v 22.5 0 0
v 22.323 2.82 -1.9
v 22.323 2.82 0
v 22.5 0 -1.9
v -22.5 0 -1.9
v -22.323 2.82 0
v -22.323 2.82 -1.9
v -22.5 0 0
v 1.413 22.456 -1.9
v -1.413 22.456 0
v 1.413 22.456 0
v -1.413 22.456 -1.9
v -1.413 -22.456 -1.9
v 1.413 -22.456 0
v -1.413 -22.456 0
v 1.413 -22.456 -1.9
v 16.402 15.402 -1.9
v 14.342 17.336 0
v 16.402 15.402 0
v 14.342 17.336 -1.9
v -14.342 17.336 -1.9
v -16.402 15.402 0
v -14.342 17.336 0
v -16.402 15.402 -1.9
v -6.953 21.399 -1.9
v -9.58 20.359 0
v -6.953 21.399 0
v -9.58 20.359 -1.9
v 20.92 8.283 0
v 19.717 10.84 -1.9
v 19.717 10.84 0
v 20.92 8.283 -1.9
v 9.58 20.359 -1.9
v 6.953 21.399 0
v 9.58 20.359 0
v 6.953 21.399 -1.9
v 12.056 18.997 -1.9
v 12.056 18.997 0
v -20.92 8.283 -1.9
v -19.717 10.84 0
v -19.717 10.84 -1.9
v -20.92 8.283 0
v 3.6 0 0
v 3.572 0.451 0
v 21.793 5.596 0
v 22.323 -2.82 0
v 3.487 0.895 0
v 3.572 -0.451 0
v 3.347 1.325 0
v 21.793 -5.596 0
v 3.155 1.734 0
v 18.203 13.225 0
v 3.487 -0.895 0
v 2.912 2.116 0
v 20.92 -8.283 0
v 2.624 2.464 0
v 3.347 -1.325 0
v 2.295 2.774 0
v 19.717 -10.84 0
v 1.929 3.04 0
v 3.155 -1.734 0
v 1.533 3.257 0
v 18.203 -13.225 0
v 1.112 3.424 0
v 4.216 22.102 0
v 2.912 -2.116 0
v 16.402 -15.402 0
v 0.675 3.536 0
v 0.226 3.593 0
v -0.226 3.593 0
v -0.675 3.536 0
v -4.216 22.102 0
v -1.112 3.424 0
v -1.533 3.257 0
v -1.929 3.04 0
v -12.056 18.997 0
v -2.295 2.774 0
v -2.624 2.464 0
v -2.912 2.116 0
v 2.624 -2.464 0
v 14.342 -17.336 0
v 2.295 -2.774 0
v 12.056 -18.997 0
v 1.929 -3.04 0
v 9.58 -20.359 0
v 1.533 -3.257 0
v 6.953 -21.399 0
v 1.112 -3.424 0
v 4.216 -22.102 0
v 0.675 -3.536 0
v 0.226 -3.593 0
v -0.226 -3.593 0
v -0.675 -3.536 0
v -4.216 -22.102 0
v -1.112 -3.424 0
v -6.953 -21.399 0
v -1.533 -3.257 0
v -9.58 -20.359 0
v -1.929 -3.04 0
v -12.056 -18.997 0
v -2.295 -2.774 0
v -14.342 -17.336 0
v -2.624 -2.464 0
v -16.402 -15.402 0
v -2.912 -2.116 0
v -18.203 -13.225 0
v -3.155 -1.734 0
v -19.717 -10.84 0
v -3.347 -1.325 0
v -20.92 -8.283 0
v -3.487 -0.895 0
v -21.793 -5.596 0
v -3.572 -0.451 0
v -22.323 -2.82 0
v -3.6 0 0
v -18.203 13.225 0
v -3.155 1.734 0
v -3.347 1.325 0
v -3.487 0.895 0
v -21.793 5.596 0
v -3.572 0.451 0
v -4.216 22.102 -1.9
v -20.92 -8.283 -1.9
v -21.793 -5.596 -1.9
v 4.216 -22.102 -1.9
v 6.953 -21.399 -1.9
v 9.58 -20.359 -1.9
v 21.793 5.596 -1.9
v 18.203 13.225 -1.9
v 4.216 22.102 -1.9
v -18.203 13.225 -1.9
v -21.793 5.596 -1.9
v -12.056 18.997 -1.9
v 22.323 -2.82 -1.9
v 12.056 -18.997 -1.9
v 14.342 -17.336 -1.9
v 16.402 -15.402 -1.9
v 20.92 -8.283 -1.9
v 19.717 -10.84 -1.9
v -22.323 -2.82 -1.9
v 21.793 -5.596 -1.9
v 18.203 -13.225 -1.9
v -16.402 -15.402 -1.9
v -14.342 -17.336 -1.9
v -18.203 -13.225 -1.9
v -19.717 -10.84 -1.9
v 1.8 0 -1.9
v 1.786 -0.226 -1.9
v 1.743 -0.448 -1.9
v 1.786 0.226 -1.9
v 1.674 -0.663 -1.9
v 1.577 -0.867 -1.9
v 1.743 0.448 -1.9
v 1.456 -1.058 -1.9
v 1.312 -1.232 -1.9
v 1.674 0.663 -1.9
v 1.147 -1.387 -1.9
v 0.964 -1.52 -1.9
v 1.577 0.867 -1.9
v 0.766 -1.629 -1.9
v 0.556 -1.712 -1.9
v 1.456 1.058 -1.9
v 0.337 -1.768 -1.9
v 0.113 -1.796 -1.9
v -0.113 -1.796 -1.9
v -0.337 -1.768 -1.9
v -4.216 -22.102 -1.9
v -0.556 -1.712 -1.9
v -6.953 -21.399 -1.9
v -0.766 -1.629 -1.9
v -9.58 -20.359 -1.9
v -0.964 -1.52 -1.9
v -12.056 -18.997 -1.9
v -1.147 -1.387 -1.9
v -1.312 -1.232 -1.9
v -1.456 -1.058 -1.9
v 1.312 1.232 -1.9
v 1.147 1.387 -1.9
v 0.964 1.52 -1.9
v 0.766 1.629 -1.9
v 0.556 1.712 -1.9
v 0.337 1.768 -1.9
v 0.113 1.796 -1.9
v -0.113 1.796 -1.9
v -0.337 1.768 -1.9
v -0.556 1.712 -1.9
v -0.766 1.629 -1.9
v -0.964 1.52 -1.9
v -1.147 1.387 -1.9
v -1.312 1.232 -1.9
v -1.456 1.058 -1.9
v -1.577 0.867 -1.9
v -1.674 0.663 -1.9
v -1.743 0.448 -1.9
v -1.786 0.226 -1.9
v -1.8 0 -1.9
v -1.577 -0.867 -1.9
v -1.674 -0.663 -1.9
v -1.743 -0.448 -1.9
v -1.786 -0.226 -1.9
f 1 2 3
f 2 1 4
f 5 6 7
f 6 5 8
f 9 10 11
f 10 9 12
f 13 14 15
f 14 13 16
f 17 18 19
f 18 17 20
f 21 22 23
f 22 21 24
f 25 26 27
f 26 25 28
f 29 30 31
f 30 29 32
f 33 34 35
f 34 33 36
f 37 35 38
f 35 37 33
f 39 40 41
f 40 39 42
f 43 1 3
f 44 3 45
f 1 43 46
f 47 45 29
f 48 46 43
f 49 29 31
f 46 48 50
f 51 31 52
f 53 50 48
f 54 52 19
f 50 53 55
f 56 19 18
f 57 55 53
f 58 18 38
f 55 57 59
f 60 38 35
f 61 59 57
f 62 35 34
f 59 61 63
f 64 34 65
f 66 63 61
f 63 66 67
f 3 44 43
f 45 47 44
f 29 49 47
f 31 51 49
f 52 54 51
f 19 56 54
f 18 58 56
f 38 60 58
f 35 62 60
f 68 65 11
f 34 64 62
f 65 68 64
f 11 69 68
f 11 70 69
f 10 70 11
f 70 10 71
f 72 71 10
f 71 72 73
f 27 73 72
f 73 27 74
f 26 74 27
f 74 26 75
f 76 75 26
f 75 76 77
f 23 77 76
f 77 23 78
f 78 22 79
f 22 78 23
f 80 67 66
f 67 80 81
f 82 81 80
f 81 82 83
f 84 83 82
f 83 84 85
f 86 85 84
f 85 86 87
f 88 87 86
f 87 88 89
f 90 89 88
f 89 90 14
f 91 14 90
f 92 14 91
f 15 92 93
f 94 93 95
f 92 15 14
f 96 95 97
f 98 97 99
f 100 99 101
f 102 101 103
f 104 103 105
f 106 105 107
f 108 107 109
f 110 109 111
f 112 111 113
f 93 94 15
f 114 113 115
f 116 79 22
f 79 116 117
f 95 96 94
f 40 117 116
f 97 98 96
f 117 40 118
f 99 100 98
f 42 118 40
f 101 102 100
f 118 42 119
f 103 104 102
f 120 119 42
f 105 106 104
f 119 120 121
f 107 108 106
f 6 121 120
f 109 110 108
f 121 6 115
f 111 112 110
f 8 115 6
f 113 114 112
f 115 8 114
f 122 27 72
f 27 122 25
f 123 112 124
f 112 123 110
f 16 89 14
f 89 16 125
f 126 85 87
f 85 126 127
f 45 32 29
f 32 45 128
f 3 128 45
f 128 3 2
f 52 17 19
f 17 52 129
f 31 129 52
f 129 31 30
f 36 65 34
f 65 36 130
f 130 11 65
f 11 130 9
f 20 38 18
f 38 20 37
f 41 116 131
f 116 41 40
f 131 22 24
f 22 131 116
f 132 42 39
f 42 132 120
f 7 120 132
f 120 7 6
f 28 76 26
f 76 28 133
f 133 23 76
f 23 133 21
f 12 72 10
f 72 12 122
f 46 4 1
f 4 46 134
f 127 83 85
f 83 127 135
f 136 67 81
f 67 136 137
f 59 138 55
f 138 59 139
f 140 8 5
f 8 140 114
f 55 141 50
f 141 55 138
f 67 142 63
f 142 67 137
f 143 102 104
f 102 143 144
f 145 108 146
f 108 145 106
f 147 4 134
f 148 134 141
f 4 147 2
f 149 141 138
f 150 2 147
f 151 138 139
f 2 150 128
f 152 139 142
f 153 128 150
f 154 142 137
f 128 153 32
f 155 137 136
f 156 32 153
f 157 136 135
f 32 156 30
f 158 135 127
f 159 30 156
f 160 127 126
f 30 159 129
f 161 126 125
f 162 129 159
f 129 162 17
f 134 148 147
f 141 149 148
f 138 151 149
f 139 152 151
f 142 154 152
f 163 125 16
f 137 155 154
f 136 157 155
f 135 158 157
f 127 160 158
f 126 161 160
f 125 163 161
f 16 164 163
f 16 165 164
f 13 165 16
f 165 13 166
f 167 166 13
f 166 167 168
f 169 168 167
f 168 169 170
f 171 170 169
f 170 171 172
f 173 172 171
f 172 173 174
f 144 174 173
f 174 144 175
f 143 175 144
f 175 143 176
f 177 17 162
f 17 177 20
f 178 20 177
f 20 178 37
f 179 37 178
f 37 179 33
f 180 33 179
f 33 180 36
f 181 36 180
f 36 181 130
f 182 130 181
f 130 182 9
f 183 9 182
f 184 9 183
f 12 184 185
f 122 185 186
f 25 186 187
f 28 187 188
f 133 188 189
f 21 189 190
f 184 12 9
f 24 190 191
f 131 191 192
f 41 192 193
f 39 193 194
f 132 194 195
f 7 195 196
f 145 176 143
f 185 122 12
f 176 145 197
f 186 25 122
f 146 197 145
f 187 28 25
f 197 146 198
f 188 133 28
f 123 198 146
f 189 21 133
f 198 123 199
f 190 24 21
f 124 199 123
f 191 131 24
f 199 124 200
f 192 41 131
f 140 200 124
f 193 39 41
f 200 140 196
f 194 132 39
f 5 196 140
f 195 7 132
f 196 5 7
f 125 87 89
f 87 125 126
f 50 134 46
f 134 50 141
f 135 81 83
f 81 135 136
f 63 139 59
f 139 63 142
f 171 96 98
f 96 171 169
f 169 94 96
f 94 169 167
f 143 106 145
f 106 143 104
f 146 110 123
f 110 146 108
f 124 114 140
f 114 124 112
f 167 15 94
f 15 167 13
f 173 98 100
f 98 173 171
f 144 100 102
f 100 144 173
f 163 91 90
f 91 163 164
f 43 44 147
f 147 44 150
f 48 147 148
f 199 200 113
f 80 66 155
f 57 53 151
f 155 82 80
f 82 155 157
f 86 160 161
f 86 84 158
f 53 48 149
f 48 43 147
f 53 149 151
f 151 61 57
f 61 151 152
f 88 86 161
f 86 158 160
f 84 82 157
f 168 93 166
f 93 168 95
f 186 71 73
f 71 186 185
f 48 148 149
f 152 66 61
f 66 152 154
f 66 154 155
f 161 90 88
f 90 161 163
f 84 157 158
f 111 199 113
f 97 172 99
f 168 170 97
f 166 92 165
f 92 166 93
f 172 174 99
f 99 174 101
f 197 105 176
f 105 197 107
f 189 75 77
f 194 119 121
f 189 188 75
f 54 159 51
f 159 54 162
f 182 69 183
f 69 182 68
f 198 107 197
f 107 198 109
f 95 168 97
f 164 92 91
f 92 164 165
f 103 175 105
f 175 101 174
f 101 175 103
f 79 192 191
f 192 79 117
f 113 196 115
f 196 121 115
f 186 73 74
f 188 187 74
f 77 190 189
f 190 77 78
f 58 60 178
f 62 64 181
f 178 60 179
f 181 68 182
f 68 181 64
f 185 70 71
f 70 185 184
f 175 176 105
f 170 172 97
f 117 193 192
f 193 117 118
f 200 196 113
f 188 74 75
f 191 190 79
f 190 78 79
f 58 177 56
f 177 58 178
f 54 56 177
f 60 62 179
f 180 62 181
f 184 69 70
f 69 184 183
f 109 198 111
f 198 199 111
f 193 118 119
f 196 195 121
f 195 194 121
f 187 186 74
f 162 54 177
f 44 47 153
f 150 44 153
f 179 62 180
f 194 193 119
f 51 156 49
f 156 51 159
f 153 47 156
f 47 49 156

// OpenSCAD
$fn = 50;


difference() {
	union() {
		translate(v = [0, 0, -1.9000000000]) {
			cylinder(h = 1.9000000000, r = 22.5000000000);
		}
		translate(v = [0, 0, -1.9000000000]) {
			cylinder(h = 1.9000000000, r = 2.8750000000);
		}
	}
	union() {
		translate(v = [0, 0, 0]) {
			rotate(a = [0, 0, 0]) {
				difference() {
					union() {
						#translate(v = [0, 0, -1.9000000000]) {
							cylinder(h = 1.9000000000, r = 1.5000000000);
						}
						#translate(v = [0, 0, -1.9000000000]) {
							cylinder(h = 1.9000000000, r1 = 1.8000000000, r2 = 3.6000000000);
						}
						#translate(v = [0, 0, -1.9000000000]) {
							cylinder(h = 1.9000000000, r = 1.8000000000);
						}
						#translate(v = [0, 0, -1.9000000000]) {
							cylinder(h = 1.9000000000, r = 1.5000000000);
						}
					}
					union();
				}
			}
		}
	}
}
